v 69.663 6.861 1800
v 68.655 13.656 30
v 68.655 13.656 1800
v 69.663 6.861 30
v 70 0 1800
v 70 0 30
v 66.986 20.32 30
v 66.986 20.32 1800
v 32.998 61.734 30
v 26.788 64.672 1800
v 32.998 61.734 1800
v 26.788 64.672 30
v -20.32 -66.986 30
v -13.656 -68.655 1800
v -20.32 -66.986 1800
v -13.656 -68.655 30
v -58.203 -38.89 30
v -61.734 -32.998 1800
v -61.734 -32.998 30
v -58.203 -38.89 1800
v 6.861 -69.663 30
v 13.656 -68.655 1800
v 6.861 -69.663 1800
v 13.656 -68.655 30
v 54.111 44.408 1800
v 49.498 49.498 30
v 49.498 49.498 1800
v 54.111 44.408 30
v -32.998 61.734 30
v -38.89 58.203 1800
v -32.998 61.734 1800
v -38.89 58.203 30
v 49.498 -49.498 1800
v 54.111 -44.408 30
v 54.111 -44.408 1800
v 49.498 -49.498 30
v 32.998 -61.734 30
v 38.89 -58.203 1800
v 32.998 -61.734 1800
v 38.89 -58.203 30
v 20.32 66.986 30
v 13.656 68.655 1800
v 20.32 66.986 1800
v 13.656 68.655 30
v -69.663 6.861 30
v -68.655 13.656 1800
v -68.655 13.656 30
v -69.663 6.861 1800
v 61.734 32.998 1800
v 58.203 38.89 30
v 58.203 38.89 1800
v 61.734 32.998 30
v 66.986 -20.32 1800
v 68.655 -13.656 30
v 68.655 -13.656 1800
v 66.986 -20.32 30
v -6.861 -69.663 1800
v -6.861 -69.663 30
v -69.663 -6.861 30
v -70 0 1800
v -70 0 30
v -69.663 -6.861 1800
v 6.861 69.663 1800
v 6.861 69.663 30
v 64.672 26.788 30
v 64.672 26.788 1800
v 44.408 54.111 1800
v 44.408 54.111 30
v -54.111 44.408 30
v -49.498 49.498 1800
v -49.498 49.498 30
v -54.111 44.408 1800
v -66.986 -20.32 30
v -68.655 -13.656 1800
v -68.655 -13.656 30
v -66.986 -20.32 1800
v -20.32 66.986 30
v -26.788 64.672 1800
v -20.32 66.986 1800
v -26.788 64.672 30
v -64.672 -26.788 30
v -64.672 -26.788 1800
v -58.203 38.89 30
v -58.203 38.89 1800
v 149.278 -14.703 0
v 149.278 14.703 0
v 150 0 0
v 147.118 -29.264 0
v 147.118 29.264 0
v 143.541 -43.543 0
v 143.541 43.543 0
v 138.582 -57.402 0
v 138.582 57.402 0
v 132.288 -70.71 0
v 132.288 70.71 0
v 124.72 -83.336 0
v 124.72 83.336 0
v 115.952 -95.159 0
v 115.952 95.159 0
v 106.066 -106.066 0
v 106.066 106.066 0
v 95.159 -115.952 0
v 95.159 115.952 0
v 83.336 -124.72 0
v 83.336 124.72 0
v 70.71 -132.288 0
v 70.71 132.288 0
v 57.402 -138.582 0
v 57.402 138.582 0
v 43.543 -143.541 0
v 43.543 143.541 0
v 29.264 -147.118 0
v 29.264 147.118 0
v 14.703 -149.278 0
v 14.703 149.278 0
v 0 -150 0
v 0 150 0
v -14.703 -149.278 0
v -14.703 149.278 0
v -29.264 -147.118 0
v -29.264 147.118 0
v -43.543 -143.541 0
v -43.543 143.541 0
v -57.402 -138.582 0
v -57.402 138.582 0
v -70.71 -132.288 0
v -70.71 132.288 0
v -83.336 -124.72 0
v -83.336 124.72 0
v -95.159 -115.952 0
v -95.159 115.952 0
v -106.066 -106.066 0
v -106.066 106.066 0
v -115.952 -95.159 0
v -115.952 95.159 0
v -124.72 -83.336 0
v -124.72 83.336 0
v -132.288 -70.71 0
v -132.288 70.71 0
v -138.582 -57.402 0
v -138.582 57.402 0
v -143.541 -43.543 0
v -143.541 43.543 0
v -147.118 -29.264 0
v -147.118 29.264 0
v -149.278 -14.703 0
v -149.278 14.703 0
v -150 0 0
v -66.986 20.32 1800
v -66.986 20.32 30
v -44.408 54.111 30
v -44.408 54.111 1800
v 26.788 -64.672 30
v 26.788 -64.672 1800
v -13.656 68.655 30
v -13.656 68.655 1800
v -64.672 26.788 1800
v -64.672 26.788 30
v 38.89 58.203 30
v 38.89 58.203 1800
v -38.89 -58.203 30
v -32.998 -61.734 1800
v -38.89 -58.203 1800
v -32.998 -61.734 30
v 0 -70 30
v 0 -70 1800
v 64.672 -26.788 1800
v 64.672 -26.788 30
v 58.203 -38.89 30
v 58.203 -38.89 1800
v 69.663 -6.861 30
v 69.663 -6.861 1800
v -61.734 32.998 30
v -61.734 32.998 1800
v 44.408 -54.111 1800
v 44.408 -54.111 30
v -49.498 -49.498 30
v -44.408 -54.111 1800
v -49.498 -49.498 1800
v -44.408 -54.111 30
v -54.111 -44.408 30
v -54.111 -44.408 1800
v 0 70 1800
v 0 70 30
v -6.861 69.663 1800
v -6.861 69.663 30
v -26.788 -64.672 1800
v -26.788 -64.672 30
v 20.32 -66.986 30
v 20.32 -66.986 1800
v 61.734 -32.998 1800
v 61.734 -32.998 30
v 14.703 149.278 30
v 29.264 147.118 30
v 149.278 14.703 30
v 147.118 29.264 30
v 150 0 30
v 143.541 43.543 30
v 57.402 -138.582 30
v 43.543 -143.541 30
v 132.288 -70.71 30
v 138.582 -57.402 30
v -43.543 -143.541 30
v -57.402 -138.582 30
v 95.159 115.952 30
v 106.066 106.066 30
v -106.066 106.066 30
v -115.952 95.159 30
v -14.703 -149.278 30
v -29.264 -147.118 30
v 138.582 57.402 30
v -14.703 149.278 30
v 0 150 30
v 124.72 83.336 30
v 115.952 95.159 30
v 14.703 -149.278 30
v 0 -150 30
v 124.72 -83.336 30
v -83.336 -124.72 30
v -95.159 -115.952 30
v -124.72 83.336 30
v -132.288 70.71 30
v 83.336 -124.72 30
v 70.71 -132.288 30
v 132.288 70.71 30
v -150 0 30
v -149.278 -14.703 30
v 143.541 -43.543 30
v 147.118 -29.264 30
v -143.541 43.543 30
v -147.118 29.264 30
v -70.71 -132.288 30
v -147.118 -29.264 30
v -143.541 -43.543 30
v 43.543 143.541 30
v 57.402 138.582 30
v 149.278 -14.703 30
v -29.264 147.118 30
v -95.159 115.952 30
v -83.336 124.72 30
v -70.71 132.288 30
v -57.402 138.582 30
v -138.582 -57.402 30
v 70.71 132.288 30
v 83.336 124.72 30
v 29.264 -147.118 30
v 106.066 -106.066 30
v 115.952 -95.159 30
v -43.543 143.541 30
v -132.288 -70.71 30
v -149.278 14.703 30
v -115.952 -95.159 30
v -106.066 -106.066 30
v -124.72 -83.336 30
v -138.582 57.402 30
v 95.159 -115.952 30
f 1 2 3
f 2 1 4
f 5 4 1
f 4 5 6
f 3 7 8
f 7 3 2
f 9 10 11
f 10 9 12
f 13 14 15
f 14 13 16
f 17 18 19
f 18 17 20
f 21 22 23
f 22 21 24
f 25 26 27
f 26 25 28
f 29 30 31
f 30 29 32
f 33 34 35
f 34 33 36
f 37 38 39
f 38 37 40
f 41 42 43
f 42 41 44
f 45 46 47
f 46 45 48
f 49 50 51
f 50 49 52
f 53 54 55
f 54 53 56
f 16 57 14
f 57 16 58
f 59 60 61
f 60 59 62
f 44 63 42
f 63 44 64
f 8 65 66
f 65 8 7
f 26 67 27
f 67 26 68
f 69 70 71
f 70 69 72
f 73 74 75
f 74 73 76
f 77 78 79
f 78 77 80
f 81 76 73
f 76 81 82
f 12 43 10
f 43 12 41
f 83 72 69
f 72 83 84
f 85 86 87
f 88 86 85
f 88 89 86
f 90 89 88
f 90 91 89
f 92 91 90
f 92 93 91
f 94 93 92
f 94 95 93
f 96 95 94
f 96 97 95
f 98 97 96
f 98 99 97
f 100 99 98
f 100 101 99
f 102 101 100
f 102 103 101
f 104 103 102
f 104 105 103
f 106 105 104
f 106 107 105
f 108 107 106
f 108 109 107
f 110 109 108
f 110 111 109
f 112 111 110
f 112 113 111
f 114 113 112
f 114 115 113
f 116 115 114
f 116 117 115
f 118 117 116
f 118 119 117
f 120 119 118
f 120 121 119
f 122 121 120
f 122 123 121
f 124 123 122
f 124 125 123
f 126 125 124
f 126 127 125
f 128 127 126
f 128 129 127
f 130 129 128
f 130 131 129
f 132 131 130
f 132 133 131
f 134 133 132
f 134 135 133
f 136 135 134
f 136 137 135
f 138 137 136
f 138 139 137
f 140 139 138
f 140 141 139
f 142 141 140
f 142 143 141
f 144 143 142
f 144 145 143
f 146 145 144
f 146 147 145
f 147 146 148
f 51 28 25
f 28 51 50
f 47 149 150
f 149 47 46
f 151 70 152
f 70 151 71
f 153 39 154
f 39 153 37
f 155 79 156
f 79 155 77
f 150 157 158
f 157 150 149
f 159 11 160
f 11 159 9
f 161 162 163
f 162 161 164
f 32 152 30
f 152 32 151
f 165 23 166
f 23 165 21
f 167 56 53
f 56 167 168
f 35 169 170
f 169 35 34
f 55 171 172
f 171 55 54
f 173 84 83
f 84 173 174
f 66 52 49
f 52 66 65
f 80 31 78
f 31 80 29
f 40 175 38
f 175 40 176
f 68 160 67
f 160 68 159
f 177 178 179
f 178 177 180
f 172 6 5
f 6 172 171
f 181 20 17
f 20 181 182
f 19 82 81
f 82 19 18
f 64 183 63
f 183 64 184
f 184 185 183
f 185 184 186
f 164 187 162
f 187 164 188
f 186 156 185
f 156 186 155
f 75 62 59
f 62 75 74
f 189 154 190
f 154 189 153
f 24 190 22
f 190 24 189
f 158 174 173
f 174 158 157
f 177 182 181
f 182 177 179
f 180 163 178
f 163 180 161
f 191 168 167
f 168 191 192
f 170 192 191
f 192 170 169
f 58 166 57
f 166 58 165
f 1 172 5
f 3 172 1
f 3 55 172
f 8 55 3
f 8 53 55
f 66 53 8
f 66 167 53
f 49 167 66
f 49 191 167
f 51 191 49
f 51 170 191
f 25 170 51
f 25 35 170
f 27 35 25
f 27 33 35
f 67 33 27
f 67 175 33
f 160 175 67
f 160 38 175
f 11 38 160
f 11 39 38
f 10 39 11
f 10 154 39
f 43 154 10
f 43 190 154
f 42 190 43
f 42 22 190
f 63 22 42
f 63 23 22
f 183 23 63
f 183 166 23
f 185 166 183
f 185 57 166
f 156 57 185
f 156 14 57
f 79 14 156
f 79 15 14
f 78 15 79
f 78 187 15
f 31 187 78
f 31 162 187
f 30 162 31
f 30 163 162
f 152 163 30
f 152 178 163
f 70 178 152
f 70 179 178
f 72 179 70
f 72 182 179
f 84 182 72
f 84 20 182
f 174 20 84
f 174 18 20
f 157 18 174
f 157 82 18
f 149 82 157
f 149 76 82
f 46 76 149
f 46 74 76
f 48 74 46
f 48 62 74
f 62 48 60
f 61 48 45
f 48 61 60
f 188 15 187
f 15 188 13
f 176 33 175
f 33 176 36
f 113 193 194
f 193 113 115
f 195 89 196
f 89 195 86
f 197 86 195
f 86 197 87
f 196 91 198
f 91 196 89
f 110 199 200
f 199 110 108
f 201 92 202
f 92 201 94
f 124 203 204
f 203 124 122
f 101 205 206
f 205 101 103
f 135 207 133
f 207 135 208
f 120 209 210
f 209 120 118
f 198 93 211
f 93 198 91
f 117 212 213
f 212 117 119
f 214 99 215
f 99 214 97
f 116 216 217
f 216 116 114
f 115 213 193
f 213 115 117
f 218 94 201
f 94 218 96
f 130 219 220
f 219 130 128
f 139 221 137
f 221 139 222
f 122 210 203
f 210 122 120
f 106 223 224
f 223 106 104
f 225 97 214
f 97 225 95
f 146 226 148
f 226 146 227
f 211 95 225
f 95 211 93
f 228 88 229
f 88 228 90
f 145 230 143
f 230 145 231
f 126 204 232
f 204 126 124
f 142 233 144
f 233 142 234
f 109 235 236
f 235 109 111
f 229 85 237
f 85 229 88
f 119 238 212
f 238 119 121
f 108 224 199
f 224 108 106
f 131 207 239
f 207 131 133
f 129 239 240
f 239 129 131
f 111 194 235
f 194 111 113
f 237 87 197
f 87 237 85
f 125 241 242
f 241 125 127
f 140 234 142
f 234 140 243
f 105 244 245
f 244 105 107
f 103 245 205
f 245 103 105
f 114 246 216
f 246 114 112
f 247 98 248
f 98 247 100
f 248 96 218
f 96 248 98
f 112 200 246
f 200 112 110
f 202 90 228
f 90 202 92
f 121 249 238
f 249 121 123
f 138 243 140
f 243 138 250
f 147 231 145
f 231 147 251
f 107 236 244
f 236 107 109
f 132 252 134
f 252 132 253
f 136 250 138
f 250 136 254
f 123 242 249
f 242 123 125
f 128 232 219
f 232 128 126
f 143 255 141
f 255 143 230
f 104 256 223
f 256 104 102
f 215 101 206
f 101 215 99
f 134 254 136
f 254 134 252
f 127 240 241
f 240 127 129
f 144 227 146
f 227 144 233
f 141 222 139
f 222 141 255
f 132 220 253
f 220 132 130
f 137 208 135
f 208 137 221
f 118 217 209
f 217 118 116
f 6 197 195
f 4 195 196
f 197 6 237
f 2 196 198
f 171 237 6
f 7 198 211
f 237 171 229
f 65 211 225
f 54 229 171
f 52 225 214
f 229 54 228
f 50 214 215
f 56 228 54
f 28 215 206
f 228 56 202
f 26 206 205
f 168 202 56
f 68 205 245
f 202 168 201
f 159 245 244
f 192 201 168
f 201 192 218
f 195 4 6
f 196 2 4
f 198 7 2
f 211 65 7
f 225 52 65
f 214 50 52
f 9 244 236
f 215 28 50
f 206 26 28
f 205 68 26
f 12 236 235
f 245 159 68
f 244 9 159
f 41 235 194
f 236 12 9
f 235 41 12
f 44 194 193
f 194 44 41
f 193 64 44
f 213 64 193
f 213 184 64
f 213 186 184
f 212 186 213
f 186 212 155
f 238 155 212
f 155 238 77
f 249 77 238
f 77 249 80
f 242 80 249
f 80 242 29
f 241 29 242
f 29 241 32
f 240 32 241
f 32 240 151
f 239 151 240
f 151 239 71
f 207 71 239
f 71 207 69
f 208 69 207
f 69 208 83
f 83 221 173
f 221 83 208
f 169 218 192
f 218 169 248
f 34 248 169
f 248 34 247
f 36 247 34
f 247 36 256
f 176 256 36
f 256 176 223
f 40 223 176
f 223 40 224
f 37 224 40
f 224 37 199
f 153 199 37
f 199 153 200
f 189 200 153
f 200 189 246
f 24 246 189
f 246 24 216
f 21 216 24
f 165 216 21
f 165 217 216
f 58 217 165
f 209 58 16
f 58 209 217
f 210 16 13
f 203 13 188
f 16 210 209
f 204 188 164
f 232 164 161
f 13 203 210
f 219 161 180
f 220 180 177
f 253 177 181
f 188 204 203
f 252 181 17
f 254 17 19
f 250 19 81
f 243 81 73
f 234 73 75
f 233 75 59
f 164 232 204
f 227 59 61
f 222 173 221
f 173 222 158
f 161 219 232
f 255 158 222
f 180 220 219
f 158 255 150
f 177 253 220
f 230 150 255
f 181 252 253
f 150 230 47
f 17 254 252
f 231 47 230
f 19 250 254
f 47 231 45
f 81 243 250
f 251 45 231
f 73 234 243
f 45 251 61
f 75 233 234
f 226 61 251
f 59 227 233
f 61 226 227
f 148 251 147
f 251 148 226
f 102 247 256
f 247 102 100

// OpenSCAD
$fn=64; post_h=1800; post_d=140; base=300; cylinder(d=post_d,h=post_h); cylinder(d=base,h=30);
